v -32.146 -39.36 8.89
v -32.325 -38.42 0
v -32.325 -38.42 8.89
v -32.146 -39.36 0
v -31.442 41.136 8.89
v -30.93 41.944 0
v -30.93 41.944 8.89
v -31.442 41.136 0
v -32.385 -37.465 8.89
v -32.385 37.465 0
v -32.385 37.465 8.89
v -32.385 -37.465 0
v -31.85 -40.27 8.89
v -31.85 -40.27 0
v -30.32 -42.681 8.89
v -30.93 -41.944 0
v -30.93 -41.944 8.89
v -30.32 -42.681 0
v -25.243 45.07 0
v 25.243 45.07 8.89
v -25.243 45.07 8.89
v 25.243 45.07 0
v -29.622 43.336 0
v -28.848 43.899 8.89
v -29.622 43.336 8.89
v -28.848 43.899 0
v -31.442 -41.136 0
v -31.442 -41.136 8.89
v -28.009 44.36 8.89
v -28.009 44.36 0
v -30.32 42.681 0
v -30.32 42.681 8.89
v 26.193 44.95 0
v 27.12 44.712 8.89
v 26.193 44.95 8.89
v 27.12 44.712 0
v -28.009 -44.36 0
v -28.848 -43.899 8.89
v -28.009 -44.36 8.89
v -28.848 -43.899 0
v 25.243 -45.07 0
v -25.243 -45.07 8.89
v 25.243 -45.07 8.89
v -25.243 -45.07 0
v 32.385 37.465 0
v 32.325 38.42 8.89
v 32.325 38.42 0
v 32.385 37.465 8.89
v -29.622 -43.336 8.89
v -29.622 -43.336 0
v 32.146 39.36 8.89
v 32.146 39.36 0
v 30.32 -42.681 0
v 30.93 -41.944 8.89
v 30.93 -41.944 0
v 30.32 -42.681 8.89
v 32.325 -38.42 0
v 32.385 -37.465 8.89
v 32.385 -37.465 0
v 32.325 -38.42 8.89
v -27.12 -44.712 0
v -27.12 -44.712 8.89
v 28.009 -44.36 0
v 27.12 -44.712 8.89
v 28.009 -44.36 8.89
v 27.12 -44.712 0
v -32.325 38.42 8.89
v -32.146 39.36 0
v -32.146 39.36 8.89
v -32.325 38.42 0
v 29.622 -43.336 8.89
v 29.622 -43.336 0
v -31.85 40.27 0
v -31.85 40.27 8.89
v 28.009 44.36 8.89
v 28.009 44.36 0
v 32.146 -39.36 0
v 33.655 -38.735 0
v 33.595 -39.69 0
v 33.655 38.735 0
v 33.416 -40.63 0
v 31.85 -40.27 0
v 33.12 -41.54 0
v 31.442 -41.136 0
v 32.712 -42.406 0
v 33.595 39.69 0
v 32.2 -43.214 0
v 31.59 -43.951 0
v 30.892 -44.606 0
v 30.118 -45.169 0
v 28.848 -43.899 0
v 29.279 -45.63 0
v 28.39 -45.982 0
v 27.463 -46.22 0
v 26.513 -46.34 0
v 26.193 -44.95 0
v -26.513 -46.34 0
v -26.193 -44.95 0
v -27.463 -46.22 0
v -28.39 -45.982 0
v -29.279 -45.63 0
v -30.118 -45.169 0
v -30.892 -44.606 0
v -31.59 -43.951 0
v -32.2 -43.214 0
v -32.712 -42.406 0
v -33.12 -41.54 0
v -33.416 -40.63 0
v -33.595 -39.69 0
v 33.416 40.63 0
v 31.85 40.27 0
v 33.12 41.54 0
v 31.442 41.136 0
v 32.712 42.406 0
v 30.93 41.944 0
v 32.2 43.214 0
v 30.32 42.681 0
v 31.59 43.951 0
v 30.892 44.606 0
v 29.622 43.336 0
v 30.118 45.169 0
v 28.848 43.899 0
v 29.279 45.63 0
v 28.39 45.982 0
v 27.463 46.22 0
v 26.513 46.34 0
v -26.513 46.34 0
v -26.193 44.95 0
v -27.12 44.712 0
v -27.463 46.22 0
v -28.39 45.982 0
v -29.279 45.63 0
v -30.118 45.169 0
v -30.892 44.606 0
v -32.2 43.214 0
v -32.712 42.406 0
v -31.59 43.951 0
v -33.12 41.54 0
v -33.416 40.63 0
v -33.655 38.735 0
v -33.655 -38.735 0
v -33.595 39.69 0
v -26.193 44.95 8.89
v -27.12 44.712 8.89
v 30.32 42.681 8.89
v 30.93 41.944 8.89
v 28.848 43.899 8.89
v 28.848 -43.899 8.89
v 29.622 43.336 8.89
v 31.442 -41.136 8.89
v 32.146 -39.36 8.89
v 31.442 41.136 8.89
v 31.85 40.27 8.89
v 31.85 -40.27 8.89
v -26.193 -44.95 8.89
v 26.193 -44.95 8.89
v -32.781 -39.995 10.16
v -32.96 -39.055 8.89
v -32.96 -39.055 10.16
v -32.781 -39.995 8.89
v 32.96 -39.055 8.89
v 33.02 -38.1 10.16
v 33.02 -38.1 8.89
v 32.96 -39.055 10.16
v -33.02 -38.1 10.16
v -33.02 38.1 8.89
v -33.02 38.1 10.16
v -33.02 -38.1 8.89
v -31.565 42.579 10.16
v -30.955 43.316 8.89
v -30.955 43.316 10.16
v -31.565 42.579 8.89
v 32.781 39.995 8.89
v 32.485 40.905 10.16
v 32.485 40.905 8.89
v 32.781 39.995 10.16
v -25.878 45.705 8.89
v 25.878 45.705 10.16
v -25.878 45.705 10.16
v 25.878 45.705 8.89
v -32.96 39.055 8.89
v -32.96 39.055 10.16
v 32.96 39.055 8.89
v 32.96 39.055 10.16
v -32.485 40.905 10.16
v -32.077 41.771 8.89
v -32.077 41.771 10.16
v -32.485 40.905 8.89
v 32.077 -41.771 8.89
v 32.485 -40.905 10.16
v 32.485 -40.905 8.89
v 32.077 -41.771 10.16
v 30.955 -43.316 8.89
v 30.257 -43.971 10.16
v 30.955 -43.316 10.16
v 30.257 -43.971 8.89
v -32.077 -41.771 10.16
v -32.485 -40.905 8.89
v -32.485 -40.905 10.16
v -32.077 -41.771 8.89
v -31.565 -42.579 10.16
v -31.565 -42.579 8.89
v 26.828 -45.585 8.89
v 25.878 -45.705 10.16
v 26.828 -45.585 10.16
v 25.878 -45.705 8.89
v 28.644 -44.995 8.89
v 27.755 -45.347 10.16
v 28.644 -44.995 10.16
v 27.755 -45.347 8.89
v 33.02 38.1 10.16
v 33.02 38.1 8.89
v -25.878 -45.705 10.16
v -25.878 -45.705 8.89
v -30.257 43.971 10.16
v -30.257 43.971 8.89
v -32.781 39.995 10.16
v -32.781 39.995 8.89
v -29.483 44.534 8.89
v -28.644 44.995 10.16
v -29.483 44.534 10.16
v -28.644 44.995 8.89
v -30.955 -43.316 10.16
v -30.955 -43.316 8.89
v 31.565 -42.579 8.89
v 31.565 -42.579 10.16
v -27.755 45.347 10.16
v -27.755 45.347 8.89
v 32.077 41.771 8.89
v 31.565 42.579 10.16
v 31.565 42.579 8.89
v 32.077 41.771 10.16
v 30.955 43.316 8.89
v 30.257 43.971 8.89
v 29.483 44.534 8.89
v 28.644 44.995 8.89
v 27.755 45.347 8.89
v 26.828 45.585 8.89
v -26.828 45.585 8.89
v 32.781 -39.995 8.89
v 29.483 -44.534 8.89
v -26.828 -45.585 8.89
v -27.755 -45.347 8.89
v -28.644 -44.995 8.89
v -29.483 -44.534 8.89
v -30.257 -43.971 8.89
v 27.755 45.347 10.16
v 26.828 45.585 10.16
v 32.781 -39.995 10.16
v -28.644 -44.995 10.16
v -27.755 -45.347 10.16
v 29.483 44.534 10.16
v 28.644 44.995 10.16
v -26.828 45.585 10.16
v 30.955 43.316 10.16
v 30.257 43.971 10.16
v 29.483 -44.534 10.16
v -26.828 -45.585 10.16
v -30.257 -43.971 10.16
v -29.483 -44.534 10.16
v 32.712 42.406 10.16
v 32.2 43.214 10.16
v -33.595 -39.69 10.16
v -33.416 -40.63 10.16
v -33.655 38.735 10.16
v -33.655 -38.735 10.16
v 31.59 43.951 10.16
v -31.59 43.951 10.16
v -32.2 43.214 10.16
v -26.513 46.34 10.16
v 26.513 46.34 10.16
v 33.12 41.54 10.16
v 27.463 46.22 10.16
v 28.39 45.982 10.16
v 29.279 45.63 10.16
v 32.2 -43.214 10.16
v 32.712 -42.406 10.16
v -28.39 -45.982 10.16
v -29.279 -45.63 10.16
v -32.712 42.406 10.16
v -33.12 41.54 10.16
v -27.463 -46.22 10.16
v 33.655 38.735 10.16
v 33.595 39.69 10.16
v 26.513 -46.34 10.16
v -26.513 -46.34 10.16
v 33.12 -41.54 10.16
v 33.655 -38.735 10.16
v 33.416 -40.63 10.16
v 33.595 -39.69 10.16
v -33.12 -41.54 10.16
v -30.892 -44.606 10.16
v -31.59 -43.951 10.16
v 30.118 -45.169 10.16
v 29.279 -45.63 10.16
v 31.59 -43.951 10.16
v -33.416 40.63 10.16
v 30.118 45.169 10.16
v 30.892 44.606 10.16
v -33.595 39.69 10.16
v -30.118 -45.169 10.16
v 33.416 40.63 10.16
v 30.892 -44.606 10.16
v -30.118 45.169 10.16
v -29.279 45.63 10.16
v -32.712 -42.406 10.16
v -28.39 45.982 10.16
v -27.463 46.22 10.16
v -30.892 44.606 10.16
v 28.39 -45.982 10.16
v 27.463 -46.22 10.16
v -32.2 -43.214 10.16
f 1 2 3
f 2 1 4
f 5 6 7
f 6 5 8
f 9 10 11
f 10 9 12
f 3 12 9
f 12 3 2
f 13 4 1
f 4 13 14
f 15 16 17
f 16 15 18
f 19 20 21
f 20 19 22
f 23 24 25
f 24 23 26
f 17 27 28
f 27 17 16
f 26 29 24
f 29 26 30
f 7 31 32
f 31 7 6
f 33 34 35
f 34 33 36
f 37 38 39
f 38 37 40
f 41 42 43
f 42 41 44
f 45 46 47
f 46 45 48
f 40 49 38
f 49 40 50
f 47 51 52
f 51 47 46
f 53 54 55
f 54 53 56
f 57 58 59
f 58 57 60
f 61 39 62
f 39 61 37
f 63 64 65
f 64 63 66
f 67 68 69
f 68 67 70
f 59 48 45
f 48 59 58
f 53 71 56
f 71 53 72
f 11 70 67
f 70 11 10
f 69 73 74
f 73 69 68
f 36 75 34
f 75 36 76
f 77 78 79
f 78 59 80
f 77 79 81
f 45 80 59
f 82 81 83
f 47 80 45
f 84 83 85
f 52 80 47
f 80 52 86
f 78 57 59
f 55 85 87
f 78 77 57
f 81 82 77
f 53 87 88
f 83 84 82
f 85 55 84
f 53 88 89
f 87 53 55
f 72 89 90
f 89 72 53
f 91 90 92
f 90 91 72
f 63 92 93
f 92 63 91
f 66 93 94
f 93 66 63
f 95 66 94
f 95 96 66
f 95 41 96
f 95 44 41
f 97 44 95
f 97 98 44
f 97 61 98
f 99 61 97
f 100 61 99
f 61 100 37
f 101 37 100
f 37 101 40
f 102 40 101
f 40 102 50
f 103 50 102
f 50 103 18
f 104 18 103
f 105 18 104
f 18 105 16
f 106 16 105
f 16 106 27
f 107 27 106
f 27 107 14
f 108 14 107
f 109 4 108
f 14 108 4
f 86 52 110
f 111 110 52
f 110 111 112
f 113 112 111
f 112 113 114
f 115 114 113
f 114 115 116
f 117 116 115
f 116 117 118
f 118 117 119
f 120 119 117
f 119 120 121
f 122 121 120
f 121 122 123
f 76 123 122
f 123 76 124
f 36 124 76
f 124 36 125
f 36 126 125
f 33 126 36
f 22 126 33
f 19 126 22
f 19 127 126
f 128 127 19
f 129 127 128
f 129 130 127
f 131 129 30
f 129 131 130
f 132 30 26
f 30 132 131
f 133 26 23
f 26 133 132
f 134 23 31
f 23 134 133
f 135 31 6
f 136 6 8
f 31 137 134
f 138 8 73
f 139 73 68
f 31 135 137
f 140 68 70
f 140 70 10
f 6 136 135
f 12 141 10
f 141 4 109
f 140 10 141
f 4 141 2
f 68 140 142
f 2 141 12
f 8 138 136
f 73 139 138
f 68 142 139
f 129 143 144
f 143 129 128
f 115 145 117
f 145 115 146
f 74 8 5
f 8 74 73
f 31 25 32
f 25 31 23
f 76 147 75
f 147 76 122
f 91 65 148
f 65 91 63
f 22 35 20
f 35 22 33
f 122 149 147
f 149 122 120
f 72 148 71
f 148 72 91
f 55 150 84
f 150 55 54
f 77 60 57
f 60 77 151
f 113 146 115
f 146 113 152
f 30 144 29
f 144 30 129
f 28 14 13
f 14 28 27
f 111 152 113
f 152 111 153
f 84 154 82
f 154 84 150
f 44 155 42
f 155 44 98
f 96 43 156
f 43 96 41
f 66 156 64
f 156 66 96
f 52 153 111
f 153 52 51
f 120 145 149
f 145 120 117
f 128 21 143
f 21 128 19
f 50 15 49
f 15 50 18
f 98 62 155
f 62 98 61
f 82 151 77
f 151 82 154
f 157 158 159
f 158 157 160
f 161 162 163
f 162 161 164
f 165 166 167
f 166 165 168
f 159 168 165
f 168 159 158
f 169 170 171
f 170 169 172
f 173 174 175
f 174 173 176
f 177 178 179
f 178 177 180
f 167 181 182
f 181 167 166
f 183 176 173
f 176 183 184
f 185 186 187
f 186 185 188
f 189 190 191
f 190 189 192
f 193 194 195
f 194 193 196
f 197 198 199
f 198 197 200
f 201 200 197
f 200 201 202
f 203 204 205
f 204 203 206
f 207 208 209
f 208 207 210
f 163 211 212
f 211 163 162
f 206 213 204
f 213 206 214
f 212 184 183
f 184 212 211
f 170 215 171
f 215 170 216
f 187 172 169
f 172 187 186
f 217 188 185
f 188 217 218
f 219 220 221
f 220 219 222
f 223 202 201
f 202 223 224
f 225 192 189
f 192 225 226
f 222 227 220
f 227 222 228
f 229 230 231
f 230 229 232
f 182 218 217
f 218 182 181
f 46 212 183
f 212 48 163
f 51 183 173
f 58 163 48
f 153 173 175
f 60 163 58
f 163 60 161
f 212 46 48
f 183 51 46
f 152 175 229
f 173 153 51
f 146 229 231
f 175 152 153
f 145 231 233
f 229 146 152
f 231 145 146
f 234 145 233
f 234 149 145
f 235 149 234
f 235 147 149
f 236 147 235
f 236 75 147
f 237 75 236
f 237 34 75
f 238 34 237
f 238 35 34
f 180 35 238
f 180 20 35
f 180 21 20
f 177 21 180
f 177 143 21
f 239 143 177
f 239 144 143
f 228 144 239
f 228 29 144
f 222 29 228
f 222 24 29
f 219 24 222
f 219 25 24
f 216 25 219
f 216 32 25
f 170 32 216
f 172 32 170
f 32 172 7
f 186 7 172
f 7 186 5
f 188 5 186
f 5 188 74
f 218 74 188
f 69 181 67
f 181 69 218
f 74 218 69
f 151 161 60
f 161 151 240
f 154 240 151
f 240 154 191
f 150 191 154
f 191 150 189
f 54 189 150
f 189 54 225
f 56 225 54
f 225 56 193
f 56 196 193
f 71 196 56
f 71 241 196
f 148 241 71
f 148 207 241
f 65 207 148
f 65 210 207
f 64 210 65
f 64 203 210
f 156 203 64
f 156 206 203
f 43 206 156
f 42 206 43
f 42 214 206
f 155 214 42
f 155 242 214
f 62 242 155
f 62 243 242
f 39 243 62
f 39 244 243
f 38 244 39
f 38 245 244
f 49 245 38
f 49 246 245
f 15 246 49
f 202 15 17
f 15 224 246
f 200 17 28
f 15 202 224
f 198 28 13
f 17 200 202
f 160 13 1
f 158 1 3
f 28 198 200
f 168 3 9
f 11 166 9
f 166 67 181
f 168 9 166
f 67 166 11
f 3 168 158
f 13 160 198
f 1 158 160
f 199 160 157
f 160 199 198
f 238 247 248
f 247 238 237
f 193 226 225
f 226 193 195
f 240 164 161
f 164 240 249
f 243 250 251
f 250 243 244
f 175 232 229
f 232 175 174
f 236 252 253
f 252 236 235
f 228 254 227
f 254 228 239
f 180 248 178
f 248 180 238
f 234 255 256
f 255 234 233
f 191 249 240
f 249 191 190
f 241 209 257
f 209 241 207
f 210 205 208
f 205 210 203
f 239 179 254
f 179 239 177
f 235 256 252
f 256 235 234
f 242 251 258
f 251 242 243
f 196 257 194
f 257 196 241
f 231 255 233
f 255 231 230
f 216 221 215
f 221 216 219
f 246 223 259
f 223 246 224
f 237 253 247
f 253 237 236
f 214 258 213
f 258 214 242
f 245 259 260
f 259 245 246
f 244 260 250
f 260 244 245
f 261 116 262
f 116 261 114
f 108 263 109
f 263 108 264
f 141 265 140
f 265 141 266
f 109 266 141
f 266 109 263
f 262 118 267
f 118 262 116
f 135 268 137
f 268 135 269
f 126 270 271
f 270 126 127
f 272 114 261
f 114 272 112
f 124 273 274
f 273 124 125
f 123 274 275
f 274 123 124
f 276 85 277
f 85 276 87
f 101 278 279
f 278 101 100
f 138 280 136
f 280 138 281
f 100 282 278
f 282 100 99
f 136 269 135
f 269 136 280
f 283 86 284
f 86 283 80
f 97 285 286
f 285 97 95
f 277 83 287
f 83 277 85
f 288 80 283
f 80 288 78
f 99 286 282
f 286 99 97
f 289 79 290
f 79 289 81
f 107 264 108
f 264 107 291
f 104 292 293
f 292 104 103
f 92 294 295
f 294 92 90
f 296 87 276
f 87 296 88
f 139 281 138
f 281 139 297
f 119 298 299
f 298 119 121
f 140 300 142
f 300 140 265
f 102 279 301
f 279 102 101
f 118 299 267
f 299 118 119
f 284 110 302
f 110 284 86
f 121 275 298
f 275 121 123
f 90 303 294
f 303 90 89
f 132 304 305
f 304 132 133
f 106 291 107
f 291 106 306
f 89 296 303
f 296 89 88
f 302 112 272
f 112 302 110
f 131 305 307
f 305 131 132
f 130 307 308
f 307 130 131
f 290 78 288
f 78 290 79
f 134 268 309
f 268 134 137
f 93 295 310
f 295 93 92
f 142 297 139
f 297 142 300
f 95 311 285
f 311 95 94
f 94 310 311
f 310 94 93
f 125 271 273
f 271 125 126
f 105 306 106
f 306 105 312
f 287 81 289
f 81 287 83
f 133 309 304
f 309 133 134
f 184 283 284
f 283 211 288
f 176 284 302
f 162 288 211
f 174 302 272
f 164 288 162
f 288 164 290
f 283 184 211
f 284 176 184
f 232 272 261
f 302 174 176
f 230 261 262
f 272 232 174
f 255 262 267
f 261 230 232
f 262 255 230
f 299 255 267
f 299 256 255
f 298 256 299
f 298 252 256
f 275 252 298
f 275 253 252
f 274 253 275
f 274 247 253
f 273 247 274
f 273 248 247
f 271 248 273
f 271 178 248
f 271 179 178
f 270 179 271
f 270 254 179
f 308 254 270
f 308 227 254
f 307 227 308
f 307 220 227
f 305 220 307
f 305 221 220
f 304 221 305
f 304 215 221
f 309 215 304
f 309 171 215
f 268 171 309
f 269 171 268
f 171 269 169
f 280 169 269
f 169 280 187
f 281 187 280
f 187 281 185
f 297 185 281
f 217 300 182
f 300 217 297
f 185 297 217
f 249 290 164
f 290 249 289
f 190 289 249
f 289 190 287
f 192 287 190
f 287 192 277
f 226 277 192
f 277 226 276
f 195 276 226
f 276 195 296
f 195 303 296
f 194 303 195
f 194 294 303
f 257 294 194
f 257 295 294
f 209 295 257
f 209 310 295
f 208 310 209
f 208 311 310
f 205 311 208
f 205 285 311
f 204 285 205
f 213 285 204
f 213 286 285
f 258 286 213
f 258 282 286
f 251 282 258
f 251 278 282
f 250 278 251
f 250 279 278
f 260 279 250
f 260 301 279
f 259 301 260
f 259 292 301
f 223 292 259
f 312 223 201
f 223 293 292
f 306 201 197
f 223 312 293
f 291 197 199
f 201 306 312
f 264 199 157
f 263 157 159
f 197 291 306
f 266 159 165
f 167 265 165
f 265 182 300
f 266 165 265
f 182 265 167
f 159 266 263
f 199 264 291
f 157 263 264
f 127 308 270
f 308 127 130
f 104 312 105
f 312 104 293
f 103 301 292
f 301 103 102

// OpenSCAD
$fn = 50;
inch = 25.4;
thickness = 0.05*inch;
height = 0.4*inch;

module roundedRect(size, radius)
{
        x = size[0];
        y = size[1];
        z = size[2];

        linear_extrude(height=z)
        hull()
        {
                // place 4 circles in the corners, with the given radius
                translate([(-x/2)+radius, (-y/2)+radius, 0])
                circle(r=radius);

                translate([(x/2)-radius, (-y/2)+radius, 0])
                circle(r=radius);

                translate([(-x/2) + radius, (y/2)-radius, 0])
                circle(r=radius);

                translate([(x/2)-radius, (y/2)-radius, 0])
                circle(r=radius);
        }

}

difference()
{
roundedRect([2.6*inch+thickness, 
             3.6*inch+thickness, 
             height], 
             0.3*inch, center=false);
union() {
roundedRect([2.6*inch-thickness, 
             3.6*inch-thickness, 
             height],
             0.3*inch, center=false);
translate([0,0,height-thickness])
roundedRect([2.6*inch, 
             3.6*inch, 
             height],
             0.3*inch, center=false);
}
}
